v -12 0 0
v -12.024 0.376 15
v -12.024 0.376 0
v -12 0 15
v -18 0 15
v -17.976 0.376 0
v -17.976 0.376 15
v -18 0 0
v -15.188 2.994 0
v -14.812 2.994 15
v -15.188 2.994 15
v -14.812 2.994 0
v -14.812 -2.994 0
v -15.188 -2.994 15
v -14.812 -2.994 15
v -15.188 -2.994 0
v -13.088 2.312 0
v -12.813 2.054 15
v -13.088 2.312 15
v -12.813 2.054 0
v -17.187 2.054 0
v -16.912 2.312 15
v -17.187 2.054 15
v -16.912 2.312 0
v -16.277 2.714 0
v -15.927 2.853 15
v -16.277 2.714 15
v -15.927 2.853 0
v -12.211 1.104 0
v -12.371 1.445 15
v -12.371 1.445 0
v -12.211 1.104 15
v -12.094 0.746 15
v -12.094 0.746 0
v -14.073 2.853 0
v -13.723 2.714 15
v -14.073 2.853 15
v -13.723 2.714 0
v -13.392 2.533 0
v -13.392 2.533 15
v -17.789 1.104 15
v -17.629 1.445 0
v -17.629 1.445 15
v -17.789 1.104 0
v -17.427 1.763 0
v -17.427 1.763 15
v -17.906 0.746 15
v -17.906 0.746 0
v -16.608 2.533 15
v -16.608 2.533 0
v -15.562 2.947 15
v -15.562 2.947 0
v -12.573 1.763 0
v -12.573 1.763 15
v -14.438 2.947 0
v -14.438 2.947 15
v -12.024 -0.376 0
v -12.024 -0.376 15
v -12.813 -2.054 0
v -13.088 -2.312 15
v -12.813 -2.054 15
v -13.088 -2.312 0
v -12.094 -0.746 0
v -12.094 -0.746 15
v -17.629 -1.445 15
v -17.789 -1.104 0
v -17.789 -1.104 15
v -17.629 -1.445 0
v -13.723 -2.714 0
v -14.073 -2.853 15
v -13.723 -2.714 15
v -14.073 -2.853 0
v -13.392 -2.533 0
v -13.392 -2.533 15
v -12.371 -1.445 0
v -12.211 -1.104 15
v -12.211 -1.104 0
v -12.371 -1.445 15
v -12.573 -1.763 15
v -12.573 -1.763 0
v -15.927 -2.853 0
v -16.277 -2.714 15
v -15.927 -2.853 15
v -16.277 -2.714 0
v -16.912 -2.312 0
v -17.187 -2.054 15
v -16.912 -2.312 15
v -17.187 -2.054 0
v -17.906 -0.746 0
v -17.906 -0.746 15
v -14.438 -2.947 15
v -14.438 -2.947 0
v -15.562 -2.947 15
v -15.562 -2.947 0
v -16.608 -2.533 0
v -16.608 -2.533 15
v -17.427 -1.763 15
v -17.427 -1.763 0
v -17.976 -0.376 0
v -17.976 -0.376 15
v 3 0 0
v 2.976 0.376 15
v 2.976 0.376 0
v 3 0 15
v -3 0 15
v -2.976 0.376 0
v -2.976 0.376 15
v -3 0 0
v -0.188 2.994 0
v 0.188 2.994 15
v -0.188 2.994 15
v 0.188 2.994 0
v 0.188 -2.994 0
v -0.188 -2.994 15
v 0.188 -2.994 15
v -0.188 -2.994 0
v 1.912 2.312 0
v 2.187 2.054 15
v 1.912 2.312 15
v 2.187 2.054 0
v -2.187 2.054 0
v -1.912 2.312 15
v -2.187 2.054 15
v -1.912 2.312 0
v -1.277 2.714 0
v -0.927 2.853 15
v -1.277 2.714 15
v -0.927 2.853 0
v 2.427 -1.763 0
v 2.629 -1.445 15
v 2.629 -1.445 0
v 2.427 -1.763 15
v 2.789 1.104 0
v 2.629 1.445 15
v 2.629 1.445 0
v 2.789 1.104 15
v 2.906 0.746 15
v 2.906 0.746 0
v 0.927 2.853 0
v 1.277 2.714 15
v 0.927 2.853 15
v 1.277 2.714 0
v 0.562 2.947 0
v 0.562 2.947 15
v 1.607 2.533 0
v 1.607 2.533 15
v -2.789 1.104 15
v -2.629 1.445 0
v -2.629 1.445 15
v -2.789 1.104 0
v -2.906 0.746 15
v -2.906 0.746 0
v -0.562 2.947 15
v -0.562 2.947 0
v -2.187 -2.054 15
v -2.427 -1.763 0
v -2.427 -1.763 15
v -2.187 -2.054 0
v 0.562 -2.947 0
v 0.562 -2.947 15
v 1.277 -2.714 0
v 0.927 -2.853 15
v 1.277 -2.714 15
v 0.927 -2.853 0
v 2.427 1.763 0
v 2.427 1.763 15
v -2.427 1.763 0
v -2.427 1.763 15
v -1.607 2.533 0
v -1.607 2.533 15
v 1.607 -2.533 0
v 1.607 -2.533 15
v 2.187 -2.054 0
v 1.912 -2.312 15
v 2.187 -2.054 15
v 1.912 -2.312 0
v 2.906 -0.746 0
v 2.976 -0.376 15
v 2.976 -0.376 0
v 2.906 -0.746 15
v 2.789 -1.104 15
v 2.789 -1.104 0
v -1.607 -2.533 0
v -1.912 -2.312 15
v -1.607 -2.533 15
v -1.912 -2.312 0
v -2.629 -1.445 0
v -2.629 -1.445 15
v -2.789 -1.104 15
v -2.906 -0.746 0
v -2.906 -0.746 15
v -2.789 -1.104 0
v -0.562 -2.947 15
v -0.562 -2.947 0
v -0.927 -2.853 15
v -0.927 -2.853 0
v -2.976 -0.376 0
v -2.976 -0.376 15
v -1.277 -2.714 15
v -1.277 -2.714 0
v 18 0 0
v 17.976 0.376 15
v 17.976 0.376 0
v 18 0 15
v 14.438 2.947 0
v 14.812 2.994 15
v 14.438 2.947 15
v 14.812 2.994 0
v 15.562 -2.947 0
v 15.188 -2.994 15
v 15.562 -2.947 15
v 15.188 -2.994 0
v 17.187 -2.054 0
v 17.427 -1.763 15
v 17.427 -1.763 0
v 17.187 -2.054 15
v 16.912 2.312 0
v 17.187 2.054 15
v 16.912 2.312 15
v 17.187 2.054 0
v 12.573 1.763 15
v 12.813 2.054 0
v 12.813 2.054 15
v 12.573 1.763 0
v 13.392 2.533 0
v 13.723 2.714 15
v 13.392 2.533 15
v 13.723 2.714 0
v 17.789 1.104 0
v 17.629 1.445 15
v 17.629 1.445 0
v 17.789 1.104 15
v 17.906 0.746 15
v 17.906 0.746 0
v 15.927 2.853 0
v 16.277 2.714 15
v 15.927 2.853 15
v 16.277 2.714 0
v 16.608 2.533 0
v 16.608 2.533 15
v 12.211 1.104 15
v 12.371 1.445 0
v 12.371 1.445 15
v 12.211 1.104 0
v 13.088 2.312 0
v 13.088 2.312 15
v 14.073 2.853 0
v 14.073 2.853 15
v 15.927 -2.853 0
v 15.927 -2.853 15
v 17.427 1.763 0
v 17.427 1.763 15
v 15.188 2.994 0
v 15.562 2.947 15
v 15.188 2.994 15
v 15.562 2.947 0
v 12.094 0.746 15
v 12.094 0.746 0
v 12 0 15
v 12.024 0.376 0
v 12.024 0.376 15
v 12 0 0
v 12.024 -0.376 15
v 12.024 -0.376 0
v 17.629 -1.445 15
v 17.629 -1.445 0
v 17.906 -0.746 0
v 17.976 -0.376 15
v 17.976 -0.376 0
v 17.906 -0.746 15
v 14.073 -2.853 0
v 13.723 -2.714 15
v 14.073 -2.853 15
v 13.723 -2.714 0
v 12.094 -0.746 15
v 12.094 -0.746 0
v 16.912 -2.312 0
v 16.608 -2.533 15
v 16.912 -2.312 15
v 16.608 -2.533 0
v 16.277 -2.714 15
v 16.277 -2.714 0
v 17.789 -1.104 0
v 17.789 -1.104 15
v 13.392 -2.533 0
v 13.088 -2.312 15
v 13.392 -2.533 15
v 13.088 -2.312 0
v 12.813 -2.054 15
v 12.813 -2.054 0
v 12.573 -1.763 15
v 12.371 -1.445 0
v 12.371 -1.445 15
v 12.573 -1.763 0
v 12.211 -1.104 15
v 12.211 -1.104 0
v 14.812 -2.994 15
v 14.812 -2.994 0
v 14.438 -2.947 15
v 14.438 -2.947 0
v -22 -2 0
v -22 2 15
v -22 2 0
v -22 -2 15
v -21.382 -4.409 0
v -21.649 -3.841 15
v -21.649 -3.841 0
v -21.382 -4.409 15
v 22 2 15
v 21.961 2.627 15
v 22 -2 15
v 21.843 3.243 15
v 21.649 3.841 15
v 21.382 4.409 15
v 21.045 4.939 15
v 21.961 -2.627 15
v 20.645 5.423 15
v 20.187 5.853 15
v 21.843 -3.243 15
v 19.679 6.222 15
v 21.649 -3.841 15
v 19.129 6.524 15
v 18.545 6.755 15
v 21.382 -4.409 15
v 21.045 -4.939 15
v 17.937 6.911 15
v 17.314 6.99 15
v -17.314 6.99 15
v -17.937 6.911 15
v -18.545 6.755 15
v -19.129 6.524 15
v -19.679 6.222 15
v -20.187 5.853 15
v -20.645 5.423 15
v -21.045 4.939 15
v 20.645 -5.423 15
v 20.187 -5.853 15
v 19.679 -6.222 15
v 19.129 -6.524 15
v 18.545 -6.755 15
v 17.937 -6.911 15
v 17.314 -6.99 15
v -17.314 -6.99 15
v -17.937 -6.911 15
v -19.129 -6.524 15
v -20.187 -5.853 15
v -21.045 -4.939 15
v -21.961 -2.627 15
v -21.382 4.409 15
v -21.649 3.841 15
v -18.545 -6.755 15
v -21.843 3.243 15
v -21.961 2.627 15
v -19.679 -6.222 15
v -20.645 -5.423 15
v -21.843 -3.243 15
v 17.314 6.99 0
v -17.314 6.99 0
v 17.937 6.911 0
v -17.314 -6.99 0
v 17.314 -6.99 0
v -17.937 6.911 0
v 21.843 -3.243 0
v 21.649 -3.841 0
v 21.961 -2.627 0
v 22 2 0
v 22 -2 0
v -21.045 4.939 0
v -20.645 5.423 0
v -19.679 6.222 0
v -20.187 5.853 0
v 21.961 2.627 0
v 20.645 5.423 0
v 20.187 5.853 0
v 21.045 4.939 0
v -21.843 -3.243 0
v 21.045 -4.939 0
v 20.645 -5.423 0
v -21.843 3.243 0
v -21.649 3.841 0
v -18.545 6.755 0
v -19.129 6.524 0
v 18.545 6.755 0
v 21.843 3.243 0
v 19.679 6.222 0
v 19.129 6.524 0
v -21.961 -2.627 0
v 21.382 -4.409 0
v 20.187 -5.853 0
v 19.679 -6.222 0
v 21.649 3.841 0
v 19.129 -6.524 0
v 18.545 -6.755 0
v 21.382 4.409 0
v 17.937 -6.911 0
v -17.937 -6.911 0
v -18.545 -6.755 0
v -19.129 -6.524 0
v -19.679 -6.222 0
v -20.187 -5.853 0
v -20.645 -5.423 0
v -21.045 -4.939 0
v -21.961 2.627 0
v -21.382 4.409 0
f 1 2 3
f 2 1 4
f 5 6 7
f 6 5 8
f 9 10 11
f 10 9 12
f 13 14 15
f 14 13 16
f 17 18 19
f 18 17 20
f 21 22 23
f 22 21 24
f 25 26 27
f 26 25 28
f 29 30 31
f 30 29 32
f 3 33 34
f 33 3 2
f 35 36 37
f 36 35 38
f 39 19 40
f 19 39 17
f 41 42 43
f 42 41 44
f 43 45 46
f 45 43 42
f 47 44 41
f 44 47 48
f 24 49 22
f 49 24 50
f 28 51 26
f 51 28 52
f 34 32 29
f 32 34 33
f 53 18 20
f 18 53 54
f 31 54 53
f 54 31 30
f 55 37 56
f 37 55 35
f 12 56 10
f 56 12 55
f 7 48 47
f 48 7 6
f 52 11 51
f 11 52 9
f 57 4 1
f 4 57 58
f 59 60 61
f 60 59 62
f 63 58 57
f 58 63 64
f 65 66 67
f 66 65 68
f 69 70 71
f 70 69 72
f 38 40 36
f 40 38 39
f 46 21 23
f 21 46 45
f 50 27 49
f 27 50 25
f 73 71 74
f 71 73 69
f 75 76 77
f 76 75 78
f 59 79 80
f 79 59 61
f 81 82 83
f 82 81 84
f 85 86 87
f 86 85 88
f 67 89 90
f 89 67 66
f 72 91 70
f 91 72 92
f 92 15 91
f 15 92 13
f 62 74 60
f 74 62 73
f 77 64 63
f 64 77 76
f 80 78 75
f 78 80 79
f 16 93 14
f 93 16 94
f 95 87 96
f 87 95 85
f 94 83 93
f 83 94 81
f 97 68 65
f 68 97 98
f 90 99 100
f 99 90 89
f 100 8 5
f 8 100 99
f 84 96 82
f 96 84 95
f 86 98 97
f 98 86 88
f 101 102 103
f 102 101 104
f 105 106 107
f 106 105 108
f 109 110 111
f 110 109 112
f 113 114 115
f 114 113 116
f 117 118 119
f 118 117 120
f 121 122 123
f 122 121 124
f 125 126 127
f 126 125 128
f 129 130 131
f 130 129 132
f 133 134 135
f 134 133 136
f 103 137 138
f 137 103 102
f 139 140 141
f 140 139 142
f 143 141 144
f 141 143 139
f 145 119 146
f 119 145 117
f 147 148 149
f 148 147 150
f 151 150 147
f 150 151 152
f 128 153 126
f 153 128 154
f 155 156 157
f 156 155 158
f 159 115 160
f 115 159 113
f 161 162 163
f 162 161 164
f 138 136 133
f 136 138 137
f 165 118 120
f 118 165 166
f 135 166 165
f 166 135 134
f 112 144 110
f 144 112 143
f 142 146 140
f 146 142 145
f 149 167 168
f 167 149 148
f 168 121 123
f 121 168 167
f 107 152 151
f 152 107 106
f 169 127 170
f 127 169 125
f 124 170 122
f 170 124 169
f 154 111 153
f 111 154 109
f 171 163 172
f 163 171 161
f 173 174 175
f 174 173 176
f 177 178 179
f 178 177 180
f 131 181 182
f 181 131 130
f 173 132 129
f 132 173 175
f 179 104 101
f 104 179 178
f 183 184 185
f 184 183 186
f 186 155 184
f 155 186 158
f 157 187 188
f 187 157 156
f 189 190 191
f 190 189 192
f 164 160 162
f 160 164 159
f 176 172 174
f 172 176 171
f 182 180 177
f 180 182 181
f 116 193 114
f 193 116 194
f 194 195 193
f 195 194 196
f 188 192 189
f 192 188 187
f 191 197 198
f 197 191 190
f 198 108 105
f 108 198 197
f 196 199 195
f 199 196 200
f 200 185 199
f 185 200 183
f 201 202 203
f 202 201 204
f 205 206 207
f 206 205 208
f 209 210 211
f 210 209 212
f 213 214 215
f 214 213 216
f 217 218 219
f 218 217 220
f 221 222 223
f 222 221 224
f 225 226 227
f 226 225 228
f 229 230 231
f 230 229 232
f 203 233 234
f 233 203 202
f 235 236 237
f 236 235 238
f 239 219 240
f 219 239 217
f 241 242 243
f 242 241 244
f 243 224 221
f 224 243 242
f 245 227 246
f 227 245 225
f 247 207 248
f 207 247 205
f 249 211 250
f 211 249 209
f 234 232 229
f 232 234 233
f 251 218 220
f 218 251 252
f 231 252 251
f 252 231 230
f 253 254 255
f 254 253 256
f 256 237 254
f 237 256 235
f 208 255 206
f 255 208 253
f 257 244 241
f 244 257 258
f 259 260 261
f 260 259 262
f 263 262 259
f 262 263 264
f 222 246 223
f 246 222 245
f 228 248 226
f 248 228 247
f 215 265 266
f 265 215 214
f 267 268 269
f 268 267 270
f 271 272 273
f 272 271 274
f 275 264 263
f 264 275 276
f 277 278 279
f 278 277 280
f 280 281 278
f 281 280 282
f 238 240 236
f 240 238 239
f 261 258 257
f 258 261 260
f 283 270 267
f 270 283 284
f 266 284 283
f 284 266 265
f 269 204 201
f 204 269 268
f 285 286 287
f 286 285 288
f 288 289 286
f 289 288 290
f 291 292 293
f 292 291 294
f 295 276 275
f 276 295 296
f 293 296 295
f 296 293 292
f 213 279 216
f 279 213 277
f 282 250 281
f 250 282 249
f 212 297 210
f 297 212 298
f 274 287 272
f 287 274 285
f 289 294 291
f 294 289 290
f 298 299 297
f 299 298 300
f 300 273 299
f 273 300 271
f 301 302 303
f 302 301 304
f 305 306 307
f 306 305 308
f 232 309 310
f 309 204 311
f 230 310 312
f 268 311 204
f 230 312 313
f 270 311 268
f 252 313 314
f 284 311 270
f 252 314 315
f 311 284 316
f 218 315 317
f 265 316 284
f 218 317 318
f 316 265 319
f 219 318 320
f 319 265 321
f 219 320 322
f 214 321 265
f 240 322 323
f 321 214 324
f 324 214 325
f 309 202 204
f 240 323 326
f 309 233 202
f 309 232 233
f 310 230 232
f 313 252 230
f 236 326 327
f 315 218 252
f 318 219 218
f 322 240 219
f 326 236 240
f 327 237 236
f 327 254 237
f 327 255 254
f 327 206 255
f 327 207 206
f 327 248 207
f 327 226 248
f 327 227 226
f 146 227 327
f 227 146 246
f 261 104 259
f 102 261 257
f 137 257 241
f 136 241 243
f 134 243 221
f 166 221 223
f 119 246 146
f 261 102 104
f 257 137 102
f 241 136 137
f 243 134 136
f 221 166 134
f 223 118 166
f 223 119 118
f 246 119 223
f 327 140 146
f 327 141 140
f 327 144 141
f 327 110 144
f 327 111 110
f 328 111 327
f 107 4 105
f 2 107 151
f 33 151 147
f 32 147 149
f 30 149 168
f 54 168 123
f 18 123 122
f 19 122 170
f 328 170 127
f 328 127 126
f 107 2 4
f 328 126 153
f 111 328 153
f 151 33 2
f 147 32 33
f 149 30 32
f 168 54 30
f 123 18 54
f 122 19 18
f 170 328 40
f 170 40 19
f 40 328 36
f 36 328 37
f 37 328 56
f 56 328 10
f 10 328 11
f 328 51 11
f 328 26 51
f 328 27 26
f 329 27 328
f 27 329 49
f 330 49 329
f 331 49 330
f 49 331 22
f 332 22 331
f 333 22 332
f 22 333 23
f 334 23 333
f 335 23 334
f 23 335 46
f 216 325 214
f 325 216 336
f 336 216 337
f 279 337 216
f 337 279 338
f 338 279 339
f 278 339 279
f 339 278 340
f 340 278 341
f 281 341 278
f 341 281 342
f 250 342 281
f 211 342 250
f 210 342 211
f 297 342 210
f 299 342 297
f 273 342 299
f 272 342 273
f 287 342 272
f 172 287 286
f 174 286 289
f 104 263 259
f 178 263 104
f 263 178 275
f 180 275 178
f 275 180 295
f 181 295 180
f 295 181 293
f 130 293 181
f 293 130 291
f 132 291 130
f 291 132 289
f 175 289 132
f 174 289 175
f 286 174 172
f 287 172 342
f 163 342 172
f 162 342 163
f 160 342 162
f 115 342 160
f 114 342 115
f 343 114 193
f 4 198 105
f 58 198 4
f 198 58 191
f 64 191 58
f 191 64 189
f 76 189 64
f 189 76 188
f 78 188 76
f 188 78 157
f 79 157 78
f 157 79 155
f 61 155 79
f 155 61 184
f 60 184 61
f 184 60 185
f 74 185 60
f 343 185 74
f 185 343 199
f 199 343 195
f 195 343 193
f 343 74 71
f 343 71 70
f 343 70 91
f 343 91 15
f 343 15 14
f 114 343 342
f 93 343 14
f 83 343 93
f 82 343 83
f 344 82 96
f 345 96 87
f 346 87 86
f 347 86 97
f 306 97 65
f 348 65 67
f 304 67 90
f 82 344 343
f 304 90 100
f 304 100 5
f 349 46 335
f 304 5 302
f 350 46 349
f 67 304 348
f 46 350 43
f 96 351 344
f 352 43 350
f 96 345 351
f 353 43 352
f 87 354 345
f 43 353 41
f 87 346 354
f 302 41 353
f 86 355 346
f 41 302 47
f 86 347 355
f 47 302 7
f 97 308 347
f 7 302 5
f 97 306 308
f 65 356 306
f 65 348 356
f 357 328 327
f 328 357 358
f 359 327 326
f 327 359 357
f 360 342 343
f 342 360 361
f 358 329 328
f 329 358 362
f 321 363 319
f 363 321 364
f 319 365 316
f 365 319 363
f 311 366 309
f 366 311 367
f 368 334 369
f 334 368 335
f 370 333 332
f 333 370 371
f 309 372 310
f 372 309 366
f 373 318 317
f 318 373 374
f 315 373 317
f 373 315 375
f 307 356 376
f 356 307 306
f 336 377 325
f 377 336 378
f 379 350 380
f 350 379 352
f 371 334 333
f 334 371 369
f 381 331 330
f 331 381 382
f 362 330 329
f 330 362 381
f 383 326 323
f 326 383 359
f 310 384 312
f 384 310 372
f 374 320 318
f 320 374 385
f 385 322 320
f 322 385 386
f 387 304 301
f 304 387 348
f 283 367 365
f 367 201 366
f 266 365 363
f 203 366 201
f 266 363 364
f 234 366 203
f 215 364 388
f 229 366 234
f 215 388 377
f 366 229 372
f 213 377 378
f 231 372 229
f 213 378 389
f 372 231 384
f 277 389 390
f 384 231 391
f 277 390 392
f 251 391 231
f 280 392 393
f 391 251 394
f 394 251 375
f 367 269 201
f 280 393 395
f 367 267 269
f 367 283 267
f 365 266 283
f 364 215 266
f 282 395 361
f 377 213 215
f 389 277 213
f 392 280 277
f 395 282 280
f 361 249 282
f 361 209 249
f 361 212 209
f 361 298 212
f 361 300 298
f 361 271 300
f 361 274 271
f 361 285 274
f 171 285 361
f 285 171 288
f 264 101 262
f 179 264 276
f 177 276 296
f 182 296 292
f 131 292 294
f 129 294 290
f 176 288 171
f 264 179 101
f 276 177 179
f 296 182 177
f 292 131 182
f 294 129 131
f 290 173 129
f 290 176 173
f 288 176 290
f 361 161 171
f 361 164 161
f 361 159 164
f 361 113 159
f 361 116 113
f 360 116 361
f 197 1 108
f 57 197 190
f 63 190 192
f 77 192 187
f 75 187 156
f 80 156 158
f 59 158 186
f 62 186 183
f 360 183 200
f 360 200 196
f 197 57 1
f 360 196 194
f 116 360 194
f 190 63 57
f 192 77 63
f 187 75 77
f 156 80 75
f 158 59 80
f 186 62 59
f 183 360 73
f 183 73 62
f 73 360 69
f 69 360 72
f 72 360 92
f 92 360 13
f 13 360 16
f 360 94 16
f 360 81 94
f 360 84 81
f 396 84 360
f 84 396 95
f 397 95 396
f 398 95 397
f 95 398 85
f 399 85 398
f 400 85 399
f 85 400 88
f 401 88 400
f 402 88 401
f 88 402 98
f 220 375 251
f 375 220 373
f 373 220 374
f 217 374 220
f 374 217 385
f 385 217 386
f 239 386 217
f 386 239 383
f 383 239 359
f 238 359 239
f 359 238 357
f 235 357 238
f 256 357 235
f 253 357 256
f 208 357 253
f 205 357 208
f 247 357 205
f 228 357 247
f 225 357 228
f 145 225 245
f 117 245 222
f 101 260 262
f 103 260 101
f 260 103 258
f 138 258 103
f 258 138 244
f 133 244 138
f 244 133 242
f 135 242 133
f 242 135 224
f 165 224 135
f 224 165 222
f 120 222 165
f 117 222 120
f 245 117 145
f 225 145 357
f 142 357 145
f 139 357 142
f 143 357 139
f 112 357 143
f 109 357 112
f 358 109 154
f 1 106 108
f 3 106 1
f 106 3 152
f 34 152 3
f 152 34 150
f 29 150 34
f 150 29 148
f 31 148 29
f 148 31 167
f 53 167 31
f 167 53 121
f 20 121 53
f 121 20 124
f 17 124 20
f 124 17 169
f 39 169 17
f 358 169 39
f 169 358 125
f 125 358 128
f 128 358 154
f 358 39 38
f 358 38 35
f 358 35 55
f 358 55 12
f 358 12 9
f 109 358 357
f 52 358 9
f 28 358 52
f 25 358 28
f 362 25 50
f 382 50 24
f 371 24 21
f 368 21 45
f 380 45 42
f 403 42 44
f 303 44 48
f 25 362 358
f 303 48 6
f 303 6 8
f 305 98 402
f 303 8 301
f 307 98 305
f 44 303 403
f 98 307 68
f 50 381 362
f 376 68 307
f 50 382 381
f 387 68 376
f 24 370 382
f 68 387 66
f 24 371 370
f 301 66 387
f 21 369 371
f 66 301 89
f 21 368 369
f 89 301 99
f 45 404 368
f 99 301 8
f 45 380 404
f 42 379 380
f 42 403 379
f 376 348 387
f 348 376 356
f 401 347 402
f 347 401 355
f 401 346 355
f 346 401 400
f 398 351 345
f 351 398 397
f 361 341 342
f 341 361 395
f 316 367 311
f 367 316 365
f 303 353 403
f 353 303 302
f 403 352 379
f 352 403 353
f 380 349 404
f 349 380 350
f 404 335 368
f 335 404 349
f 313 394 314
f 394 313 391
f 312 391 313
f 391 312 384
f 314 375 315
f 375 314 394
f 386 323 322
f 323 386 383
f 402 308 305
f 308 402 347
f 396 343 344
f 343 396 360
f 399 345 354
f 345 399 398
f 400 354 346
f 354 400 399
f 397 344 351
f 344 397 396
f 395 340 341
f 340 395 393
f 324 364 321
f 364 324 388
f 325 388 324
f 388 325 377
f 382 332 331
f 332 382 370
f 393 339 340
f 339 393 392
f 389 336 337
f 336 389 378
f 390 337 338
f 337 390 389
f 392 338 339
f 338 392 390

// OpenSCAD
$fn = 50;


difference() {
	union() {
		hull() {
			translate(v = [-17.0000000000, 2.0000000000, 0]) {
				cylinder(h = 15, r = 5);
			}
			translate(v = [17.0000000000, 2.0000000000, 0]) {
				cylinder(h = 15, r = 5);
			}
			translate(v = [-17.0000000000, -2.0000000000, 0]) {
				cylinder(h = 15, r = 5);
			}
			translate(v = [17.0000000000, -2.0000000000, 0]) {
				cylinder(h = 15, r = 5);
			}
		}
	}
	union() {
		translate(v = [-15.0000000000, 0.0000000000, 0]) {
			translate(v = [0, 0, -100]) {
				cylinder(h = 200, r = 3.0000000000);
			}
		}
		translate(v = [0, 0, -100]) {
			cylinder(h = 200, r = 3.0000000000);
		}
		translate(v = [15.0000000000, 0.0000000000, 0]) {
			translate(v = [0, 0, -100]) {
				cylinder(h = 200, r = 3.0000000000);
			}
		}
	}
}
